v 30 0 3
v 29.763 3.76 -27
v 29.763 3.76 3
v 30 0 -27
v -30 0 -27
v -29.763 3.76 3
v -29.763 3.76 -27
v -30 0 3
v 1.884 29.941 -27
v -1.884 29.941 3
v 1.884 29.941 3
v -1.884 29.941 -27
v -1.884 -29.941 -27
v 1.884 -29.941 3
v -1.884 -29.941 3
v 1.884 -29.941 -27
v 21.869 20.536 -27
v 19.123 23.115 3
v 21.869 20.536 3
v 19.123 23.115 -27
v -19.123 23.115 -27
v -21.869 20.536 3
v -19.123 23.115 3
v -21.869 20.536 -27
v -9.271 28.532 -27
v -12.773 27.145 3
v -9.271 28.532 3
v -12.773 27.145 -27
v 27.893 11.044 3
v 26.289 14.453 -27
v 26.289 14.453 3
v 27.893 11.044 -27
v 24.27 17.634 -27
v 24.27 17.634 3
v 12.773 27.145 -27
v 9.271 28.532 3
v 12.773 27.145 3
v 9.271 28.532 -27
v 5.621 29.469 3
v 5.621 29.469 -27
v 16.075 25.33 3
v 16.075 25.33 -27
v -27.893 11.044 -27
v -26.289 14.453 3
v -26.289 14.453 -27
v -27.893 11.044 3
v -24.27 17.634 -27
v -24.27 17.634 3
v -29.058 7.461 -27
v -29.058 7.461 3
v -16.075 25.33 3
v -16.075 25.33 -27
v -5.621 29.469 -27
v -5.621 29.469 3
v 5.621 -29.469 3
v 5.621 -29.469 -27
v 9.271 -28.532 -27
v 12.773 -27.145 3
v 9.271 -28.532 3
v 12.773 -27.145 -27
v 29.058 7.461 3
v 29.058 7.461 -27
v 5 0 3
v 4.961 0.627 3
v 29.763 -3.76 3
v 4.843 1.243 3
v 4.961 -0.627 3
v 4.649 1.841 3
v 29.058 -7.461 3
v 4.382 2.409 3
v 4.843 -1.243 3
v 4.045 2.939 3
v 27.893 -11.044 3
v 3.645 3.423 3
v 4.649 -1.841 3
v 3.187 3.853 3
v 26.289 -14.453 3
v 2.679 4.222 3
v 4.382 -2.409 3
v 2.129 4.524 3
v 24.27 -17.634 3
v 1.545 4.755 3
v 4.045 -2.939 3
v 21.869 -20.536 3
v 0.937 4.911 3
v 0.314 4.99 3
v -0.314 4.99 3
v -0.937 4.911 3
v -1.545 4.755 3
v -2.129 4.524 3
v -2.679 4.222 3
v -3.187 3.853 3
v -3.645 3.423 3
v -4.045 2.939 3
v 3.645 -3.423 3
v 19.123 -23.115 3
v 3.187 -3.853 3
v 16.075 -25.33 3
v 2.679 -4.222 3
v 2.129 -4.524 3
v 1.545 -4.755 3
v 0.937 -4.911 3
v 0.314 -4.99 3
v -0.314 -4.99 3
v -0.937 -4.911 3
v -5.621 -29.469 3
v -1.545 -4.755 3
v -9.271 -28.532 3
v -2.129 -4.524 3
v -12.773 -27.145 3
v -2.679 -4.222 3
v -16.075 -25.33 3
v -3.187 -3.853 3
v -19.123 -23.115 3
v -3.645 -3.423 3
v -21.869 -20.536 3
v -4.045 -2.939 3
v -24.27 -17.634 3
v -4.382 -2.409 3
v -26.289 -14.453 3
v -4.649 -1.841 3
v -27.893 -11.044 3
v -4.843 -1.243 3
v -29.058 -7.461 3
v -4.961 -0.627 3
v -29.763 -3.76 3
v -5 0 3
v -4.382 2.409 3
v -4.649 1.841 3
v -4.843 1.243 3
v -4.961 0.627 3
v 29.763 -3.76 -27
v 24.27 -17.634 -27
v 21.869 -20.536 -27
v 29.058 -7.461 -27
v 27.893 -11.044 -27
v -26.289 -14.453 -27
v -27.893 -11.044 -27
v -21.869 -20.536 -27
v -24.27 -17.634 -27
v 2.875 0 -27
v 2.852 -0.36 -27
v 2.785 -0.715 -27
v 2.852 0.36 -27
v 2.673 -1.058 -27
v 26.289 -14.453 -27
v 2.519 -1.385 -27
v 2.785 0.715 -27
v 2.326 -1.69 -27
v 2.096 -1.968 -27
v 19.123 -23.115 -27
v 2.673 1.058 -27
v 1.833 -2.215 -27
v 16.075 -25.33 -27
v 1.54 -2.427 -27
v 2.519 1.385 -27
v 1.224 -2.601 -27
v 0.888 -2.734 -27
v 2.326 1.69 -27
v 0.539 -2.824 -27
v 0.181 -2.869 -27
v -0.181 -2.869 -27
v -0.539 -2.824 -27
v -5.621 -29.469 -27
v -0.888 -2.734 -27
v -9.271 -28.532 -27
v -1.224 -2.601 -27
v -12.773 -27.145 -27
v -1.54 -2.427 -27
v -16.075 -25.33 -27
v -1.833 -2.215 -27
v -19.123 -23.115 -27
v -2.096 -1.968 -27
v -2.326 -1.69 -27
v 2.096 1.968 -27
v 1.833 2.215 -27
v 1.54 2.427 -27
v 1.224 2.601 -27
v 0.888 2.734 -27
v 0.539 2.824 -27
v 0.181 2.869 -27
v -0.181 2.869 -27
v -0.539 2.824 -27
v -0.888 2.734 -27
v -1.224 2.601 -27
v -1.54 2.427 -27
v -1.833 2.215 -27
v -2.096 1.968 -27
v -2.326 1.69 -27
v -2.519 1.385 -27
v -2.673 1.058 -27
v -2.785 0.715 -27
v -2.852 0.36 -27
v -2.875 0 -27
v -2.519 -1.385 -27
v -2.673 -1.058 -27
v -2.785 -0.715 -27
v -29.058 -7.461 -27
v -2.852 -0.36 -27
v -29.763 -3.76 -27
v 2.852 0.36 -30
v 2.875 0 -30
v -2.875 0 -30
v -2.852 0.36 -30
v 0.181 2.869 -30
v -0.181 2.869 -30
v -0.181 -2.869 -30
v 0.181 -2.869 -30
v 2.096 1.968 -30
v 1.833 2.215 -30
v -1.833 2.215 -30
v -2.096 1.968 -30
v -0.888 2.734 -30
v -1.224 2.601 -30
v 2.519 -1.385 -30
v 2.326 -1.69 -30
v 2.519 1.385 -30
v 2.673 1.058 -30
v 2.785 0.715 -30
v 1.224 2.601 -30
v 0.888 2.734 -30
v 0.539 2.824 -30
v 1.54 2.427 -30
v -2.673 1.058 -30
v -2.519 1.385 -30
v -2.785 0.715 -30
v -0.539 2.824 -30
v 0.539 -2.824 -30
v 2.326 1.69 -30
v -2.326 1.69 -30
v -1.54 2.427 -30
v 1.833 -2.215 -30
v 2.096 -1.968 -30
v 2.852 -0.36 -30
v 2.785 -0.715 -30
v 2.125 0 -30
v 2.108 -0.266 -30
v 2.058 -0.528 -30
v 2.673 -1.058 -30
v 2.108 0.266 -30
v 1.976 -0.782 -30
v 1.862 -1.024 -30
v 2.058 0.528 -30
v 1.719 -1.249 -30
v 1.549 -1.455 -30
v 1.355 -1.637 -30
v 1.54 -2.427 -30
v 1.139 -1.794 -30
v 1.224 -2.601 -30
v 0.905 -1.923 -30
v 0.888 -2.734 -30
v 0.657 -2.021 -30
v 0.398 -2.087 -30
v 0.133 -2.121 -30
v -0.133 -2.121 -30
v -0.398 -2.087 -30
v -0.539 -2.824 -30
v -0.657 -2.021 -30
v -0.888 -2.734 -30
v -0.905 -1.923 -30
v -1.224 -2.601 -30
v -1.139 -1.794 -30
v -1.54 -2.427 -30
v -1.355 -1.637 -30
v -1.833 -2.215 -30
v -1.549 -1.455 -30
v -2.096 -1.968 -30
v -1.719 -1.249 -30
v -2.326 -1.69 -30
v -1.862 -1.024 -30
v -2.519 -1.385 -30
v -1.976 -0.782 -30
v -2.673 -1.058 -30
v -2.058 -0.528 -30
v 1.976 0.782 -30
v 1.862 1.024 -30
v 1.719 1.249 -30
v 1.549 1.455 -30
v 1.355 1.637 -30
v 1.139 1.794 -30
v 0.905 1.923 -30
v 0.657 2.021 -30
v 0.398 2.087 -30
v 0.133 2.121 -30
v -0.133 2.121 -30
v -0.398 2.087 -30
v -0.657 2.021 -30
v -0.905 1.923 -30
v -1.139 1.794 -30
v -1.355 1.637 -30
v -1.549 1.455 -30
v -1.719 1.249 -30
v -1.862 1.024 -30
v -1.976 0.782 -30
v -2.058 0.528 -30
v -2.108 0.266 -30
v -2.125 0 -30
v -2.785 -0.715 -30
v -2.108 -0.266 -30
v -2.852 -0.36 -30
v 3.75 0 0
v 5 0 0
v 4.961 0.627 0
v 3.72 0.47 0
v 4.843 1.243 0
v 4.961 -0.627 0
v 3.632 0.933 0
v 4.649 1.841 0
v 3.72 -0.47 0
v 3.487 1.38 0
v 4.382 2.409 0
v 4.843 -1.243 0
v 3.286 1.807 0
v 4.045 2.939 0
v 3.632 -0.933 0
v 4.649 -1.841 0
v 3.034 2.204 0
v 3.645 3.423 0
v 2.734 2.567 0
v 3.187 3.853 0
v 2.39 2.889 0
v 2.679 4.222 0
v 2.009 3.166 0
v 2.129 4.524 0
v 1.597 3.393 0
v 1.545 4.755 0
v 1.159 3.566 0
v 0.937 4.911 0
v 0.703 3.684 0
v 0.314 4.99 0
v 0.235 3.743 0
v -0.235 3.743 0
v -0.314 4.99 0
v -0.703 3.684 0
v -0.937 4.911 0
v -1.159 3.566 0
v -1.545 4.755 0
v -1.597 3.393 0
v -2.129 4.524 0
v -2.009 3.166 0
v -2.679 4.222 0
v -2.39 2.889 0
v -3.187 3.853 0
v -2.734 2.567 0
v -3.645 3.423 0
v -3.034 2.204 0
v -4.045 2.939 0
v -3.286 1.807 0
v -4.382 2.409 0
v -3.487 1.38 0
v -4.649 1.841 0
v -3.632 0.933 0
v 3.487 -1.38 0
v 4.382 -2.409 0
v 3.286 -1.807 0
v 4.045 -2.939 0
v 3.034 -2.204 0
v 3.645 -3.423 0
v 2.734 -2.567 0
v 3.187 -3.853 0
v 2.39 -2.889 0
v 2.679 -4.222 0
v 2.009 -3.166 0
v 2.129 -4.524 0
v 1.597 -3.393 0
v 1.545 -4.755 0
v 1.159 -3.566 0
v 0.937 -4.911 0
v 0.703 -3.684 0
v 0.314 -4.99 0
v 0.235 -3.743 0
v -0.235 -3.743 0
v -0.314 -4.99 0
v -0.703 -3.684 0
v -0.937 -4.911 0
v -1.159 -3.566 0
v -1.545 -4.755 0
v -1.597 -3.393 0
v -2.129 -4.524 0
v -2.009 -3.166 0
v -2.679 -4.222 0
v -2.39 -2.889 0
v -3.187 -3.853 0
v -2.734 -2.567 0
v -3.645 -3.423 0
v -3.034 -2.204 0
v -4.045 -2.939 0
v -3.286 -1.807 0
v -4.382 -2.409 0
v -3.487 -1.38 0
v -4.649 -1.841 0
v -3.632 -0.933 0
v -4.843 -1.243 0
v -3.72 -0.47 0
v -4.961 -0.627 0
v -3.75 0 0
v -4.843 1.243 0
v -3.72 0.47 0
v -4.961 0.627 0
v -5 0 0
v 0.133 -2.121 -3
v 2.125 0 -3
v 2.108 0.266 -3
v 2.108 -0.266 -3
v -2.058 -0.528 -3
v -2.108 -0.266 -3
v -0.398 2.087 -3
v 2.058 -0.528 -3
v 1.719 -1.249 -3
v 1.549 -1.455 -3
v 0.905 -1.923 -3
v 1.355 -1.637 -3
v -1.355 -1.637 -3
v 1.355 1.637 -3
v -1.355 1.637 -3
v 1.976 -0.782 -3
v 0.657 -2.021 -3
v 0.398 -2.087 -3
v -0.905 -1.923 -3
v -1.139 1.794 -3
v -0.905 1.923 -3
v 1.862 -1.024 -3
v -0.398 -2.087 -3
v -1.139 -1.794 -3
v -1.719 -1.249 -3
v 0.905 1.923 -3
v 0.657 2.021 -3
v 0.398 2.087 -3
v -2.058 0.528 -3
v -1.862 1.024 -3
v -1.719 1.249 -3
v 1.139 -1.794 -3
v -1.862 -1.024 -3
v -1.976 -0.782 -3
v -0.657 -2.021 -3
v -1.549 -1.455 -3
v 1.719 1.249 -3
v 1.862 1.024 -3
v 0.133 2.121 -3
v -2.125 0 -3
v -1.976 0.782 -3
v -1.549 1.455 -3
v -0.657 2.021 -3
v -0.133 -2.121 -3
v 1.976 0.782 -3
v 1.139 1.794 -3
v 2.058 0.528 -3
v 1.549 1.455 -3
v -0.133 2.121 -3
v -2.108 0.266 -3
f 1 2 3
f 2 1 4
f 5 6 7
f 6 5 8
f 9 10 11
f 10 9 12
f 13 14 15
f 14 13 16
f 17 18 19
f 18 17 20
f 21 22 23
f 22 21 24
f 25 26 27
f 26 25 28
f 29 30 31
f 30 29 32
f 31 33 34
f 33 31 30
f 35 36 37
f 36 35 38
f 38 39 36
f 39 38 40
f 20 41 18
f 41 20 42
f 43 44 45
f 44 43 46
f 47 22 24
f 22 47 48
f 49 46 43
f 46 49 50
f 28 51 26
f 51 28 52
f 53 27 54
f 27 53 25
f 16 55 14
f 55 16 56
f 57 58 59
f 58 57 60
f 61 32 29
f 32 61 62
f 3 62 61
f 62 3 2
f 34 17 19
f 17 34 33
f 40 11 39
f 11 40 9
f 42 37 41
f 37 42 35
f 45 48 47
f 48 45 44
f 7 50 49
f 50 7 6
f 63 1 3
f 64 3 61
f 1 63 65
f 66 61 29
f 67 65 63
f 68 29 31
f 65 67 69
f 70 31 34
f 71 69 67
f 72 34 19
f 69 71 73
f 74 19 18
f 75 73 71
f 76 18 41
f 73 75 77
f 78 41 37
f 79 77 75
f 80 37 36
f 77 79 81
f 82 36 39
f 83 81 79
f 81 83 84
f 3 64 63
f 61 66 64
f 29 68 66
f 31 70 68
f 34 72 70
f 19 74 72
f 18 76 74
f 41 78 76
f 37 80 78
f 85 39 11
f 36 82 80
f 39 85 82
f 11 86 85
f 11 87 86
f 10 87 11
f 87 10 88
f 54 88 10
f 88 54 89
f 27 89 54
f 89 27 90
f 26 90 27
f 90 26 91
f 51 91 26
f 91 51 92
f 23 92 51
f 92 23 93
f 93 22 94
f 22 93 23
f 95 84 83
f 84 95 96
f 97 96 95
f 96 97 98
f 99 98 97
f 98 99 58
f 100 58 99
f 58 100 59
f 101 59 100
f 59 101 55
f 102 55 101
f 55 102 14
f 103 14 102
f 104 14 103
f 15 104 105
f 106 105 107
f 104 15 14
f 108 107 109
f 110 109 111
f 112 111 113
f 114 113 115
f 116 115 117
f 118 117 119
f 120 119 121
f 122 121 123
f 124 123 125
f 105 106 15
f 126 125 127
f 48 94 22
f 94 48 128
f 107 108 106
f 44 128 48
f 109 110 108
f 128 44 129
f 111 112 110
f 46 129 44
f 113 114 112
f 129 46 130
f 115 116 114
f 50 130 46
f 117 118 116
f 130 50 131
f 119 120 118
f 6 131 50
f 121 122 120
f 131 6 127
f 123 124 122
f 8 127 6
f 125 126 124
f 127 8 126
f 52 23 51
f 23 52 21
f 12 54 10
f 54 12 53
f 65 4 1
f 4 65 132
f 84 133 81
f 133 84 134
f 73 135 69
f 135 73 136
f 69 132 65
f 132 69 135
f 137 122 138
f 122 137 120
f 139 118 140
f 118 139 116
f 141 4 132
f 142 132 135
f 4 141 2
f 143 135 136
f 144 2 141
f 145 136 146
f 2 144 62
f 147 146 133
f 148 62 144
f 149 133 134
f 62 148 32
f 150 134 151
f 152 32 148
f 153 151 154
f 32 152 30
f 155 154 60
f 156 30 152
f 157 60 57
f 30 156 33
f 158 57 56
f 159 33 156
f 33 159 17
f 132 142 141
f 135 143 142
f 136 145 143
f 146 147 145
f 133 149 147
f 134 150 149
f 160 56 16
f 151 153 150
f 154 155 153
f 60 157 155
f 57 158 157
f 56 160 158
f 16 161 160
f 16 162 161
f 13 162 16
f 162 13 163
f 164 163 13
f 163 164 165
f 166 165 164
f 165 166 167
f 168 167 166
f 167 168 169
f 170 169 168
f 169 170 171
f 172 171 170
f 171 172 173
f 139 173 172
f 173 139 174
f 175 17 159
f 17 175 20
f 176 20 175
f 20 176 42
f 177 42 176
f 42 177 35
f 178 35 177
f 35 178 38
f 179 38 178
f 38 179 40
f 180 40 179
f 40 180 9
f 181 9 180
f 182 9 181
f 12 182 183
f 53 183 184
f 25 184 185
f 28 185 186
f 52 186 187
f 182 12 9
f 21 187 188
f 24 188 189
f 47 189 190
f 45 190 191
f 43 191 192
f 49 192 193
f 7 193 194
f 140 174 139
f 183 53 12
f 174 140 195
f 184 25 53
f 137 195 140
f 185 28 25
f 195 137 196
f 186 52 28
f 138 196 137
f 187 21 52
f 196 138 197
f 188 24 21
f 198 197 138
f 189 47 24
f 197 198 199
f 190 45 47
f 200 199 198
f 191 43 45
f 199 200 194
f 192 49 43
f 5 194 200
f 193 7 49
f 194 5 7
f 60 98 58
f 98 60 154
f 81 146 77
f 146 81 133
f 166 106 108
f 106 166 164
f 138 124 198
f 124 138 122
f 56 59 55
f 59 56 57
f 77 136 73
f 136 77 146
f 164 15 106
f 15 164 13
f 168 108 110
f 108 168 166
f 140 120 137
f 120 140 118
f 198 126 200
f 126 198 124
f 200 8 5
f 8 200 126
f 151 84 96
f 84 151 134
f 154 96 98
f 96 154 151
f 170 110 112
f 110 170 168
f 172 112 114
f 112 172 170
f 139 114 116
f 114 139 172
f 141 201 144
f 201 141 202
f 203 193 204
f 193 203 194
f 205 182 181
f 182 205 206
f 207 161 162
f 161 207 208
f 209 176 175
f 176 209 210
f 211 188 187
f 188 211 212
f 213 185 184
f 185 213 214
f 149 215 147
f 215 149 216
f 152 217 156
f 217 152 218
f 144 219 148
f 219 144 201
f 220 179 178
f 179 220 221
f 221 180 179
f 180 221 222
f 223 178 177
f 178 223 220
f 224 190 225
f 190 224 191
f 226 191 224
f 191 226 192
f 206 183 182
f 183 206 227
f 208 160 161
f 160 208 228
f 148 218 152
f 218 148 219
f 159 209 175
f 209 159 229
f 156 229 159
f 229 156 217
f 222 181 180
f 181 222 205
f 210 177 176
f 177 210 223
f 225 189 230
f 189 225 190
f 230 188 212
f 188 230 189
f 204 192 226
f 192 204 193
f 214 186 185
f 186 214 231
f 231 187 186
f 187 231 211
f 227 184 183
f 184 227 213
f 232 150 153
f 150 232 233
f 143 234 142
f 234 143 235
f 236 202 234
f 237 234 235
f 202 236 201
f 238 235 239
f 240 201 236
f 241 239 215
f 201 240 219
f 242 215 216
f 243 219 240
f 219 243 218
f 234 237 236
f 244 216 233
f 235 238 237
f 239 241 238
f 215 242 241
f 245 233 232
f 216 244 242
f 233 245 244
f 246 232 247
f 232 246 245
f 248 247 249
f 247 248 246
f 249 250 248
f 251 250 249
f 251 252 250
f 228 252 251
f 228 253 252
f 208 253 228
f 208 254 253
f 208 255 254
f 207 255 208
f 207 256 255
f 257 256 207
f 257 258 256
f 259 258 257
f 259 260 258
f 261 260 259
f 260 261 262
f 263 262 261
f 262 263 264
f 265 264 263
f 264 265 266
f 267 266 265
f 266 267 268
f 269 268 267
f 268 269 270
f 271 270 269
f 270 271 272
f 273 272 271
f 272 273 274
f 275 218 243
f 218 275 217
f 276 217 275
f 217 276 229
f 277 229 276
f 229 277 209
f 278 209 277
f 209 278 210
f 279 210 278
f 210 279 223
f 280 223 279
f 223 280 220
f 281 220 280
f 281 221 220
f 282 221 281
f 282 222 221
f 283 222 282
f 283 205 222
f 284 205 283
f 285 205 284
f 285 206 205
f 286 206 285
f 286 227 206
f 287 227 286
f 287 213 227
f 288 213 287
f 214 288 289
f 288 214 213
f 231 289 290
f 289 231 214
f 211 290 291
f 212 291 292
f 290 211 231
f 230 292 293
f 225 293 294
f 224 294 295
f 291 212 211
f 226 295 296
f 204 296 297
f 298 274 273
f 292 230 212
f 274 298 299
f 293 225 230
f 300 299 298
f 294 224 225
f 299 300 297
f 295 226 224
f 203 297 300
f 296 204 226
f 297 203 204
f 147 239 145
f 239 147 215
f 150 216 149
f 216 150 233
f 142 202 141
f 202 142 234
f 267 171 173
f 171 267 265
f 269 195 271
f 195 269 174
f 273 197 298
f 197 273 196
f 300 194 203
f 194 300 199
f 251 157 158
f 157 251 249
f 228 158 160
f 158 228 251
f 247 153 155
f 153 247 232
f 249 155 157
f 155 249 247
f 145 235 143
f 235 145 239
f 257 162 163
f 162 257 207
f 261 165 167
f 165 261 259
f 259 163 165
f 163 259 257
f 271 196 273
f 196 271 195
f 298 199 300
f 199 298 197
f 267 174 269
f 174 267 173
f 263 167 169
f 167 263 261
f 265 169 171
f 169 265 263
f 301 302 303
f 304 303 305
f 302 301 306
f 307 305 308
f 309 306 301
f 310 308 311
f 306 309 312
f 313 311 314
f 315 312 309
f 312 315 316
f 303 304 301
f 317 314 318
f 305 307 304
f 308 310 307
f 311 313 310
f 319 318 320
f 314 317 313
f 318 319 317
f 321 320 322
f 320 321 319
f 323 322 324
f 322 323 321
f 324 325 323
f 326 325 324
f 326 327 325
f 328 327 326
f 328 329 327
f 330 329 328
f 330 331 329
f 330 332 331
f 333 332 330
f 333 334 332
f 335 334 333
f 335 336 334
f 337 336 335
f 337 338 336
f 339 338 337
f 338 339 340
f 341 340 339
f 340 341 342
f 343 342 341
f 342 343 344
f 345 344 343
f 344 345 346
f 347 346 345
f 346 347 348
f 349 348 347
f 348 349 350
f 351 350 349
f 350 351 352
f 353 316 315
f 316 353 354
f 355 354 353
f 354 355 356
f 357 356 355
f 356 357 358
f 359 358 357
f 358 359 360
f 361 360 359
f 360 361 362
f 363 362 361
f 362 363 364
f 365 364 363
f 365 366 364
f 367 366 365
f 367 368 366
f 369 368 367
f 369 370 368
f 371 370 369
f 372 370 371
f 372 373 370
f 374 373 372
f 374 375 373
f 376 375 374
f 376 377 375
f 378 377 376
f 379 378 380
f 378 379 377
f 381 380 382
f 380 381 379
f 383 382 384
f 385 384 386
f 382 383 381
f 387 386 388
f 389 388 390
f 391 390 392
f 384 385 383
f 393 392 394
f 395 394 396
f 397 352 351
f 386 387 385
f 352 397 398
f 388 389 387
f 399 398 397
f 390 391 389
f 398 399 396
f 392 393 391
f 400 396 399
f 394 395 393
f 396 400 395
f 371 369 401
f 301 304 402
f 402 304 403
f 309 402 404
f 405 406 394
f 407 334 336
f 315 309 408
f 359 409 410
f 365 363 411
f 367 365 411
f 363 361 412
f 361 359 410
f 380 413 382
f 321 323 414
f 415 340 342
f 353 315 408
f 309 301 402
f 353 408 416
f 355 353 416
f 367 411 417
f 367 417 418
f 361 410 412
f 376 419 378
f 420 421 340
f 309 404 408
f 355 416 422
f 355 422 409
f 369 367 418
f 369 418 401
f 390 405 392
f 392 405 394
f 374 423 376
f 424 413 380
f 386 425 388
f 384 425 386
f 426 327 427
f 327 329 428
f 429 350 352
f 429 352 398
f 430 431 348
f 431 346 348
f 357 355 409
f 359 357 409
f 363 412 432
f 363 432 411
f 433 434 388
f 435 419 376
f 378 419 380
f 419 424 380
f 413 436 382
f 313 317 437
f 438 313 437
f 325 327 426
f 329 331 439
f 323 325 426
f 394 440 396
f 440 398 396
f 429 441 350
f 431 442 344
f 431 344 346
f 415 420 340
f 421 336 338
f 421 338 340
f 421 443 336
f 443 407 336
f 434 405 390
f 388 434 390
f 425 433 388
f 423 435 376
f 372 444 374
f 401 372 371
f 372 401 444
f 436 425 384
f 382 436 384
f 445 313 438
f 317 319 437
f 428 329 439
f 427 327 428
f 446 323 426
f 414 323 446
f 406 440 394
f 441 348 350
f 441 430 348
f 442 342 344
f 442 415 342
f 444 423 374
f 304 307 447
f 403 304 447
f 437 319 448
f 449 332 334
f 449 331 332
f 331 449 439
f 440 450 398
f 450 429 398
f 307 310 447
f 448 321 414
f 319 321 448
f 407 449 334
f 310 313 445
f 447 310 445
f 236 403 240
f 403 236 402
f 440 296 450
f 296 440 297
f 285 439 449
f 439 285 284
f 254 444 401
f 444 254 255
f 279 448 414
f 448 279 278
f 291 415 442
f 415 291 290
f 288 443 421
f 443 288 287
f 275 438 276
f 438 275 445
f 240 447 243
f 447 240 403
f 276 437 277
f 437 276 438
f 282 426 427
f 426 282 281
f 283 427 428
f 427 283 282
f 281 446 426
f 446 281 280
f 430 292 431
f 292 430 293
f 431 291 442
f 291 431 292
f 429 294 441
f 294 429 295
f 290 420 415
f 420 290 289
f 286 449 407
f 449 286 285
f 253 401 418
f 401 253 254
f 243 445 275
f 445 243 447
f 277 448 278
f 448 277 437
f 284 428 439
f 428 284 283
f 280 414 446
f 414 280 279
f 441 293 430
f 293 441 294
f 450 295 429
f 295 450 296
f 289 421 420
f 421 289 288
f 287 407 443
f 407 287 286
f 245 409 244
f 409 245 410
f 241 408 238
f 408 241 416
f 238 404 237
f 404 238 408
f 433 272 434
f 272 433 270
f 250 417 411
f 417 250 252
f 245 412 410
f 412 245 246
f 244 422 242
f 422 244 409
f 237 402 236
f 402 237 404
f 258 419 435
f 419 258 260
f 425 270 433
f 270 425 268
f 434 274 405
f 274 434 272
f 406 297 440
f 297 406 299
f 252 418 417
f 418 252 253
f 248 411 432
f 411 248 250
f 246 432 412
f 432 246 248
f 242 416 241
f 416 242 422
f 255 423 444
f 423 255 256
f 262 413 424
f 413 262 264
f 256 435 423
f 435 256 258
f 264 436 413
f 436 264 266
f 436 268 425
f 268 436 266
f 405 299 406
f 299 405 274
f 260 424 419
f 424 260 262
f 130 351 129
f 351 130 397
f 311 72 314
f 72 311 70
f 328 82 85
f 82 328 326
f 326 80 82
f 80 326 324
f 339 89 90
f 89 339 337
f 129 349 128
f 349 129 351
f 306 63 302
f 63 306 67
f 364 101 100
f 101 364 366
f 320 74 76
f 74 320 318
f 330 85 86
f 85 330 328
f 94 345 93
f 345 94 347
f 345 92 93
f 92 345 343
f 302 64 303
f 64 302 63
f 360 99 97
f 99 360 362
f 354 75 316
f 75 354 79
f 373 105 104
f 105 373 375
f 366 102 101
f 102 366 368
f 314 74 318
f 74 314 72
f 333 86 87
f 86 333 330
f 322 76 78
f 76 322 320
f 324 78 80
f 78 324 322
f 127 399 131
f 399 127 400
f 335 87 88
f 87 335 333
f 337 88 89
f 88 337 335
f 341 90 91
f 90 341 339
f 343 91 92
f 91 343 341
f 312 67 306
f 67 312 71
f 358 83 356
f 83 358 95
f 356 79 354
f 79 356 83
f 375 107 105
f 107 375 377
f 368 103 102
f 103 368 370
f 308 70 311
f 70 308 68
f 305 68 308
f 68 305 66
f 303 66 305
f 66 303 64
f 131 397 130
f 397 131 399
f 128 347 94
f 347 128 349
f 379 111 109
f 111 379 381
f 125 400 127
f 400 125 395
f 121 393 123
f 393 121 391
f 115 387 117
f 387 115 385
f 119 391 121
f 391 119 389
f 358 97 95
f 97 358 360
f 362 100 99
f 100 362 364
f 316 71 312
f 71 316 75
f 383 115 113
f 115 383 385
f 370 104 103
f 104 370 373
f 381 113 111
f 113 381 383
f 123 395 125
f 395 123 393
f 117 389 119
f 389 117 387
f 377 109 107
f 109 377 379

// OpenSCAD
$fn = 50;

difference() {
	union() {
		translate(v = [0, 0, -27.0]) {
			cylinder(h = 30, r = 30.0);
		}
		#translate(v = [0, 0, -30.0]) {
			cylinder(h = 30, r = 2.875);
		}
	}
	union() {
		translate(v = [0, 0, 0]) {
			rotate(a = [0, 0, 0]) {
				difference() {
					union() {
						translate(v = [0, 0, -30.0]) {
							cylinder(h = 30, r = 2.0);
						}
						translate(v = [0, 0, -3]) {
							cylinder(h = 3, r1 = 2.125, r2 = 3.75);
						}
						translate(v = [0, 0, -30.0]) {
							cylinder(h = 30, r = 2.125);
						}
						translate(v = [0, 0, -30.0]) {
							cylinder(h = 30, r = 2.0);
						}
					}
					union();
				}
			}
		}
		#cylinder(h = 3, r = 5.0);
	}
}
